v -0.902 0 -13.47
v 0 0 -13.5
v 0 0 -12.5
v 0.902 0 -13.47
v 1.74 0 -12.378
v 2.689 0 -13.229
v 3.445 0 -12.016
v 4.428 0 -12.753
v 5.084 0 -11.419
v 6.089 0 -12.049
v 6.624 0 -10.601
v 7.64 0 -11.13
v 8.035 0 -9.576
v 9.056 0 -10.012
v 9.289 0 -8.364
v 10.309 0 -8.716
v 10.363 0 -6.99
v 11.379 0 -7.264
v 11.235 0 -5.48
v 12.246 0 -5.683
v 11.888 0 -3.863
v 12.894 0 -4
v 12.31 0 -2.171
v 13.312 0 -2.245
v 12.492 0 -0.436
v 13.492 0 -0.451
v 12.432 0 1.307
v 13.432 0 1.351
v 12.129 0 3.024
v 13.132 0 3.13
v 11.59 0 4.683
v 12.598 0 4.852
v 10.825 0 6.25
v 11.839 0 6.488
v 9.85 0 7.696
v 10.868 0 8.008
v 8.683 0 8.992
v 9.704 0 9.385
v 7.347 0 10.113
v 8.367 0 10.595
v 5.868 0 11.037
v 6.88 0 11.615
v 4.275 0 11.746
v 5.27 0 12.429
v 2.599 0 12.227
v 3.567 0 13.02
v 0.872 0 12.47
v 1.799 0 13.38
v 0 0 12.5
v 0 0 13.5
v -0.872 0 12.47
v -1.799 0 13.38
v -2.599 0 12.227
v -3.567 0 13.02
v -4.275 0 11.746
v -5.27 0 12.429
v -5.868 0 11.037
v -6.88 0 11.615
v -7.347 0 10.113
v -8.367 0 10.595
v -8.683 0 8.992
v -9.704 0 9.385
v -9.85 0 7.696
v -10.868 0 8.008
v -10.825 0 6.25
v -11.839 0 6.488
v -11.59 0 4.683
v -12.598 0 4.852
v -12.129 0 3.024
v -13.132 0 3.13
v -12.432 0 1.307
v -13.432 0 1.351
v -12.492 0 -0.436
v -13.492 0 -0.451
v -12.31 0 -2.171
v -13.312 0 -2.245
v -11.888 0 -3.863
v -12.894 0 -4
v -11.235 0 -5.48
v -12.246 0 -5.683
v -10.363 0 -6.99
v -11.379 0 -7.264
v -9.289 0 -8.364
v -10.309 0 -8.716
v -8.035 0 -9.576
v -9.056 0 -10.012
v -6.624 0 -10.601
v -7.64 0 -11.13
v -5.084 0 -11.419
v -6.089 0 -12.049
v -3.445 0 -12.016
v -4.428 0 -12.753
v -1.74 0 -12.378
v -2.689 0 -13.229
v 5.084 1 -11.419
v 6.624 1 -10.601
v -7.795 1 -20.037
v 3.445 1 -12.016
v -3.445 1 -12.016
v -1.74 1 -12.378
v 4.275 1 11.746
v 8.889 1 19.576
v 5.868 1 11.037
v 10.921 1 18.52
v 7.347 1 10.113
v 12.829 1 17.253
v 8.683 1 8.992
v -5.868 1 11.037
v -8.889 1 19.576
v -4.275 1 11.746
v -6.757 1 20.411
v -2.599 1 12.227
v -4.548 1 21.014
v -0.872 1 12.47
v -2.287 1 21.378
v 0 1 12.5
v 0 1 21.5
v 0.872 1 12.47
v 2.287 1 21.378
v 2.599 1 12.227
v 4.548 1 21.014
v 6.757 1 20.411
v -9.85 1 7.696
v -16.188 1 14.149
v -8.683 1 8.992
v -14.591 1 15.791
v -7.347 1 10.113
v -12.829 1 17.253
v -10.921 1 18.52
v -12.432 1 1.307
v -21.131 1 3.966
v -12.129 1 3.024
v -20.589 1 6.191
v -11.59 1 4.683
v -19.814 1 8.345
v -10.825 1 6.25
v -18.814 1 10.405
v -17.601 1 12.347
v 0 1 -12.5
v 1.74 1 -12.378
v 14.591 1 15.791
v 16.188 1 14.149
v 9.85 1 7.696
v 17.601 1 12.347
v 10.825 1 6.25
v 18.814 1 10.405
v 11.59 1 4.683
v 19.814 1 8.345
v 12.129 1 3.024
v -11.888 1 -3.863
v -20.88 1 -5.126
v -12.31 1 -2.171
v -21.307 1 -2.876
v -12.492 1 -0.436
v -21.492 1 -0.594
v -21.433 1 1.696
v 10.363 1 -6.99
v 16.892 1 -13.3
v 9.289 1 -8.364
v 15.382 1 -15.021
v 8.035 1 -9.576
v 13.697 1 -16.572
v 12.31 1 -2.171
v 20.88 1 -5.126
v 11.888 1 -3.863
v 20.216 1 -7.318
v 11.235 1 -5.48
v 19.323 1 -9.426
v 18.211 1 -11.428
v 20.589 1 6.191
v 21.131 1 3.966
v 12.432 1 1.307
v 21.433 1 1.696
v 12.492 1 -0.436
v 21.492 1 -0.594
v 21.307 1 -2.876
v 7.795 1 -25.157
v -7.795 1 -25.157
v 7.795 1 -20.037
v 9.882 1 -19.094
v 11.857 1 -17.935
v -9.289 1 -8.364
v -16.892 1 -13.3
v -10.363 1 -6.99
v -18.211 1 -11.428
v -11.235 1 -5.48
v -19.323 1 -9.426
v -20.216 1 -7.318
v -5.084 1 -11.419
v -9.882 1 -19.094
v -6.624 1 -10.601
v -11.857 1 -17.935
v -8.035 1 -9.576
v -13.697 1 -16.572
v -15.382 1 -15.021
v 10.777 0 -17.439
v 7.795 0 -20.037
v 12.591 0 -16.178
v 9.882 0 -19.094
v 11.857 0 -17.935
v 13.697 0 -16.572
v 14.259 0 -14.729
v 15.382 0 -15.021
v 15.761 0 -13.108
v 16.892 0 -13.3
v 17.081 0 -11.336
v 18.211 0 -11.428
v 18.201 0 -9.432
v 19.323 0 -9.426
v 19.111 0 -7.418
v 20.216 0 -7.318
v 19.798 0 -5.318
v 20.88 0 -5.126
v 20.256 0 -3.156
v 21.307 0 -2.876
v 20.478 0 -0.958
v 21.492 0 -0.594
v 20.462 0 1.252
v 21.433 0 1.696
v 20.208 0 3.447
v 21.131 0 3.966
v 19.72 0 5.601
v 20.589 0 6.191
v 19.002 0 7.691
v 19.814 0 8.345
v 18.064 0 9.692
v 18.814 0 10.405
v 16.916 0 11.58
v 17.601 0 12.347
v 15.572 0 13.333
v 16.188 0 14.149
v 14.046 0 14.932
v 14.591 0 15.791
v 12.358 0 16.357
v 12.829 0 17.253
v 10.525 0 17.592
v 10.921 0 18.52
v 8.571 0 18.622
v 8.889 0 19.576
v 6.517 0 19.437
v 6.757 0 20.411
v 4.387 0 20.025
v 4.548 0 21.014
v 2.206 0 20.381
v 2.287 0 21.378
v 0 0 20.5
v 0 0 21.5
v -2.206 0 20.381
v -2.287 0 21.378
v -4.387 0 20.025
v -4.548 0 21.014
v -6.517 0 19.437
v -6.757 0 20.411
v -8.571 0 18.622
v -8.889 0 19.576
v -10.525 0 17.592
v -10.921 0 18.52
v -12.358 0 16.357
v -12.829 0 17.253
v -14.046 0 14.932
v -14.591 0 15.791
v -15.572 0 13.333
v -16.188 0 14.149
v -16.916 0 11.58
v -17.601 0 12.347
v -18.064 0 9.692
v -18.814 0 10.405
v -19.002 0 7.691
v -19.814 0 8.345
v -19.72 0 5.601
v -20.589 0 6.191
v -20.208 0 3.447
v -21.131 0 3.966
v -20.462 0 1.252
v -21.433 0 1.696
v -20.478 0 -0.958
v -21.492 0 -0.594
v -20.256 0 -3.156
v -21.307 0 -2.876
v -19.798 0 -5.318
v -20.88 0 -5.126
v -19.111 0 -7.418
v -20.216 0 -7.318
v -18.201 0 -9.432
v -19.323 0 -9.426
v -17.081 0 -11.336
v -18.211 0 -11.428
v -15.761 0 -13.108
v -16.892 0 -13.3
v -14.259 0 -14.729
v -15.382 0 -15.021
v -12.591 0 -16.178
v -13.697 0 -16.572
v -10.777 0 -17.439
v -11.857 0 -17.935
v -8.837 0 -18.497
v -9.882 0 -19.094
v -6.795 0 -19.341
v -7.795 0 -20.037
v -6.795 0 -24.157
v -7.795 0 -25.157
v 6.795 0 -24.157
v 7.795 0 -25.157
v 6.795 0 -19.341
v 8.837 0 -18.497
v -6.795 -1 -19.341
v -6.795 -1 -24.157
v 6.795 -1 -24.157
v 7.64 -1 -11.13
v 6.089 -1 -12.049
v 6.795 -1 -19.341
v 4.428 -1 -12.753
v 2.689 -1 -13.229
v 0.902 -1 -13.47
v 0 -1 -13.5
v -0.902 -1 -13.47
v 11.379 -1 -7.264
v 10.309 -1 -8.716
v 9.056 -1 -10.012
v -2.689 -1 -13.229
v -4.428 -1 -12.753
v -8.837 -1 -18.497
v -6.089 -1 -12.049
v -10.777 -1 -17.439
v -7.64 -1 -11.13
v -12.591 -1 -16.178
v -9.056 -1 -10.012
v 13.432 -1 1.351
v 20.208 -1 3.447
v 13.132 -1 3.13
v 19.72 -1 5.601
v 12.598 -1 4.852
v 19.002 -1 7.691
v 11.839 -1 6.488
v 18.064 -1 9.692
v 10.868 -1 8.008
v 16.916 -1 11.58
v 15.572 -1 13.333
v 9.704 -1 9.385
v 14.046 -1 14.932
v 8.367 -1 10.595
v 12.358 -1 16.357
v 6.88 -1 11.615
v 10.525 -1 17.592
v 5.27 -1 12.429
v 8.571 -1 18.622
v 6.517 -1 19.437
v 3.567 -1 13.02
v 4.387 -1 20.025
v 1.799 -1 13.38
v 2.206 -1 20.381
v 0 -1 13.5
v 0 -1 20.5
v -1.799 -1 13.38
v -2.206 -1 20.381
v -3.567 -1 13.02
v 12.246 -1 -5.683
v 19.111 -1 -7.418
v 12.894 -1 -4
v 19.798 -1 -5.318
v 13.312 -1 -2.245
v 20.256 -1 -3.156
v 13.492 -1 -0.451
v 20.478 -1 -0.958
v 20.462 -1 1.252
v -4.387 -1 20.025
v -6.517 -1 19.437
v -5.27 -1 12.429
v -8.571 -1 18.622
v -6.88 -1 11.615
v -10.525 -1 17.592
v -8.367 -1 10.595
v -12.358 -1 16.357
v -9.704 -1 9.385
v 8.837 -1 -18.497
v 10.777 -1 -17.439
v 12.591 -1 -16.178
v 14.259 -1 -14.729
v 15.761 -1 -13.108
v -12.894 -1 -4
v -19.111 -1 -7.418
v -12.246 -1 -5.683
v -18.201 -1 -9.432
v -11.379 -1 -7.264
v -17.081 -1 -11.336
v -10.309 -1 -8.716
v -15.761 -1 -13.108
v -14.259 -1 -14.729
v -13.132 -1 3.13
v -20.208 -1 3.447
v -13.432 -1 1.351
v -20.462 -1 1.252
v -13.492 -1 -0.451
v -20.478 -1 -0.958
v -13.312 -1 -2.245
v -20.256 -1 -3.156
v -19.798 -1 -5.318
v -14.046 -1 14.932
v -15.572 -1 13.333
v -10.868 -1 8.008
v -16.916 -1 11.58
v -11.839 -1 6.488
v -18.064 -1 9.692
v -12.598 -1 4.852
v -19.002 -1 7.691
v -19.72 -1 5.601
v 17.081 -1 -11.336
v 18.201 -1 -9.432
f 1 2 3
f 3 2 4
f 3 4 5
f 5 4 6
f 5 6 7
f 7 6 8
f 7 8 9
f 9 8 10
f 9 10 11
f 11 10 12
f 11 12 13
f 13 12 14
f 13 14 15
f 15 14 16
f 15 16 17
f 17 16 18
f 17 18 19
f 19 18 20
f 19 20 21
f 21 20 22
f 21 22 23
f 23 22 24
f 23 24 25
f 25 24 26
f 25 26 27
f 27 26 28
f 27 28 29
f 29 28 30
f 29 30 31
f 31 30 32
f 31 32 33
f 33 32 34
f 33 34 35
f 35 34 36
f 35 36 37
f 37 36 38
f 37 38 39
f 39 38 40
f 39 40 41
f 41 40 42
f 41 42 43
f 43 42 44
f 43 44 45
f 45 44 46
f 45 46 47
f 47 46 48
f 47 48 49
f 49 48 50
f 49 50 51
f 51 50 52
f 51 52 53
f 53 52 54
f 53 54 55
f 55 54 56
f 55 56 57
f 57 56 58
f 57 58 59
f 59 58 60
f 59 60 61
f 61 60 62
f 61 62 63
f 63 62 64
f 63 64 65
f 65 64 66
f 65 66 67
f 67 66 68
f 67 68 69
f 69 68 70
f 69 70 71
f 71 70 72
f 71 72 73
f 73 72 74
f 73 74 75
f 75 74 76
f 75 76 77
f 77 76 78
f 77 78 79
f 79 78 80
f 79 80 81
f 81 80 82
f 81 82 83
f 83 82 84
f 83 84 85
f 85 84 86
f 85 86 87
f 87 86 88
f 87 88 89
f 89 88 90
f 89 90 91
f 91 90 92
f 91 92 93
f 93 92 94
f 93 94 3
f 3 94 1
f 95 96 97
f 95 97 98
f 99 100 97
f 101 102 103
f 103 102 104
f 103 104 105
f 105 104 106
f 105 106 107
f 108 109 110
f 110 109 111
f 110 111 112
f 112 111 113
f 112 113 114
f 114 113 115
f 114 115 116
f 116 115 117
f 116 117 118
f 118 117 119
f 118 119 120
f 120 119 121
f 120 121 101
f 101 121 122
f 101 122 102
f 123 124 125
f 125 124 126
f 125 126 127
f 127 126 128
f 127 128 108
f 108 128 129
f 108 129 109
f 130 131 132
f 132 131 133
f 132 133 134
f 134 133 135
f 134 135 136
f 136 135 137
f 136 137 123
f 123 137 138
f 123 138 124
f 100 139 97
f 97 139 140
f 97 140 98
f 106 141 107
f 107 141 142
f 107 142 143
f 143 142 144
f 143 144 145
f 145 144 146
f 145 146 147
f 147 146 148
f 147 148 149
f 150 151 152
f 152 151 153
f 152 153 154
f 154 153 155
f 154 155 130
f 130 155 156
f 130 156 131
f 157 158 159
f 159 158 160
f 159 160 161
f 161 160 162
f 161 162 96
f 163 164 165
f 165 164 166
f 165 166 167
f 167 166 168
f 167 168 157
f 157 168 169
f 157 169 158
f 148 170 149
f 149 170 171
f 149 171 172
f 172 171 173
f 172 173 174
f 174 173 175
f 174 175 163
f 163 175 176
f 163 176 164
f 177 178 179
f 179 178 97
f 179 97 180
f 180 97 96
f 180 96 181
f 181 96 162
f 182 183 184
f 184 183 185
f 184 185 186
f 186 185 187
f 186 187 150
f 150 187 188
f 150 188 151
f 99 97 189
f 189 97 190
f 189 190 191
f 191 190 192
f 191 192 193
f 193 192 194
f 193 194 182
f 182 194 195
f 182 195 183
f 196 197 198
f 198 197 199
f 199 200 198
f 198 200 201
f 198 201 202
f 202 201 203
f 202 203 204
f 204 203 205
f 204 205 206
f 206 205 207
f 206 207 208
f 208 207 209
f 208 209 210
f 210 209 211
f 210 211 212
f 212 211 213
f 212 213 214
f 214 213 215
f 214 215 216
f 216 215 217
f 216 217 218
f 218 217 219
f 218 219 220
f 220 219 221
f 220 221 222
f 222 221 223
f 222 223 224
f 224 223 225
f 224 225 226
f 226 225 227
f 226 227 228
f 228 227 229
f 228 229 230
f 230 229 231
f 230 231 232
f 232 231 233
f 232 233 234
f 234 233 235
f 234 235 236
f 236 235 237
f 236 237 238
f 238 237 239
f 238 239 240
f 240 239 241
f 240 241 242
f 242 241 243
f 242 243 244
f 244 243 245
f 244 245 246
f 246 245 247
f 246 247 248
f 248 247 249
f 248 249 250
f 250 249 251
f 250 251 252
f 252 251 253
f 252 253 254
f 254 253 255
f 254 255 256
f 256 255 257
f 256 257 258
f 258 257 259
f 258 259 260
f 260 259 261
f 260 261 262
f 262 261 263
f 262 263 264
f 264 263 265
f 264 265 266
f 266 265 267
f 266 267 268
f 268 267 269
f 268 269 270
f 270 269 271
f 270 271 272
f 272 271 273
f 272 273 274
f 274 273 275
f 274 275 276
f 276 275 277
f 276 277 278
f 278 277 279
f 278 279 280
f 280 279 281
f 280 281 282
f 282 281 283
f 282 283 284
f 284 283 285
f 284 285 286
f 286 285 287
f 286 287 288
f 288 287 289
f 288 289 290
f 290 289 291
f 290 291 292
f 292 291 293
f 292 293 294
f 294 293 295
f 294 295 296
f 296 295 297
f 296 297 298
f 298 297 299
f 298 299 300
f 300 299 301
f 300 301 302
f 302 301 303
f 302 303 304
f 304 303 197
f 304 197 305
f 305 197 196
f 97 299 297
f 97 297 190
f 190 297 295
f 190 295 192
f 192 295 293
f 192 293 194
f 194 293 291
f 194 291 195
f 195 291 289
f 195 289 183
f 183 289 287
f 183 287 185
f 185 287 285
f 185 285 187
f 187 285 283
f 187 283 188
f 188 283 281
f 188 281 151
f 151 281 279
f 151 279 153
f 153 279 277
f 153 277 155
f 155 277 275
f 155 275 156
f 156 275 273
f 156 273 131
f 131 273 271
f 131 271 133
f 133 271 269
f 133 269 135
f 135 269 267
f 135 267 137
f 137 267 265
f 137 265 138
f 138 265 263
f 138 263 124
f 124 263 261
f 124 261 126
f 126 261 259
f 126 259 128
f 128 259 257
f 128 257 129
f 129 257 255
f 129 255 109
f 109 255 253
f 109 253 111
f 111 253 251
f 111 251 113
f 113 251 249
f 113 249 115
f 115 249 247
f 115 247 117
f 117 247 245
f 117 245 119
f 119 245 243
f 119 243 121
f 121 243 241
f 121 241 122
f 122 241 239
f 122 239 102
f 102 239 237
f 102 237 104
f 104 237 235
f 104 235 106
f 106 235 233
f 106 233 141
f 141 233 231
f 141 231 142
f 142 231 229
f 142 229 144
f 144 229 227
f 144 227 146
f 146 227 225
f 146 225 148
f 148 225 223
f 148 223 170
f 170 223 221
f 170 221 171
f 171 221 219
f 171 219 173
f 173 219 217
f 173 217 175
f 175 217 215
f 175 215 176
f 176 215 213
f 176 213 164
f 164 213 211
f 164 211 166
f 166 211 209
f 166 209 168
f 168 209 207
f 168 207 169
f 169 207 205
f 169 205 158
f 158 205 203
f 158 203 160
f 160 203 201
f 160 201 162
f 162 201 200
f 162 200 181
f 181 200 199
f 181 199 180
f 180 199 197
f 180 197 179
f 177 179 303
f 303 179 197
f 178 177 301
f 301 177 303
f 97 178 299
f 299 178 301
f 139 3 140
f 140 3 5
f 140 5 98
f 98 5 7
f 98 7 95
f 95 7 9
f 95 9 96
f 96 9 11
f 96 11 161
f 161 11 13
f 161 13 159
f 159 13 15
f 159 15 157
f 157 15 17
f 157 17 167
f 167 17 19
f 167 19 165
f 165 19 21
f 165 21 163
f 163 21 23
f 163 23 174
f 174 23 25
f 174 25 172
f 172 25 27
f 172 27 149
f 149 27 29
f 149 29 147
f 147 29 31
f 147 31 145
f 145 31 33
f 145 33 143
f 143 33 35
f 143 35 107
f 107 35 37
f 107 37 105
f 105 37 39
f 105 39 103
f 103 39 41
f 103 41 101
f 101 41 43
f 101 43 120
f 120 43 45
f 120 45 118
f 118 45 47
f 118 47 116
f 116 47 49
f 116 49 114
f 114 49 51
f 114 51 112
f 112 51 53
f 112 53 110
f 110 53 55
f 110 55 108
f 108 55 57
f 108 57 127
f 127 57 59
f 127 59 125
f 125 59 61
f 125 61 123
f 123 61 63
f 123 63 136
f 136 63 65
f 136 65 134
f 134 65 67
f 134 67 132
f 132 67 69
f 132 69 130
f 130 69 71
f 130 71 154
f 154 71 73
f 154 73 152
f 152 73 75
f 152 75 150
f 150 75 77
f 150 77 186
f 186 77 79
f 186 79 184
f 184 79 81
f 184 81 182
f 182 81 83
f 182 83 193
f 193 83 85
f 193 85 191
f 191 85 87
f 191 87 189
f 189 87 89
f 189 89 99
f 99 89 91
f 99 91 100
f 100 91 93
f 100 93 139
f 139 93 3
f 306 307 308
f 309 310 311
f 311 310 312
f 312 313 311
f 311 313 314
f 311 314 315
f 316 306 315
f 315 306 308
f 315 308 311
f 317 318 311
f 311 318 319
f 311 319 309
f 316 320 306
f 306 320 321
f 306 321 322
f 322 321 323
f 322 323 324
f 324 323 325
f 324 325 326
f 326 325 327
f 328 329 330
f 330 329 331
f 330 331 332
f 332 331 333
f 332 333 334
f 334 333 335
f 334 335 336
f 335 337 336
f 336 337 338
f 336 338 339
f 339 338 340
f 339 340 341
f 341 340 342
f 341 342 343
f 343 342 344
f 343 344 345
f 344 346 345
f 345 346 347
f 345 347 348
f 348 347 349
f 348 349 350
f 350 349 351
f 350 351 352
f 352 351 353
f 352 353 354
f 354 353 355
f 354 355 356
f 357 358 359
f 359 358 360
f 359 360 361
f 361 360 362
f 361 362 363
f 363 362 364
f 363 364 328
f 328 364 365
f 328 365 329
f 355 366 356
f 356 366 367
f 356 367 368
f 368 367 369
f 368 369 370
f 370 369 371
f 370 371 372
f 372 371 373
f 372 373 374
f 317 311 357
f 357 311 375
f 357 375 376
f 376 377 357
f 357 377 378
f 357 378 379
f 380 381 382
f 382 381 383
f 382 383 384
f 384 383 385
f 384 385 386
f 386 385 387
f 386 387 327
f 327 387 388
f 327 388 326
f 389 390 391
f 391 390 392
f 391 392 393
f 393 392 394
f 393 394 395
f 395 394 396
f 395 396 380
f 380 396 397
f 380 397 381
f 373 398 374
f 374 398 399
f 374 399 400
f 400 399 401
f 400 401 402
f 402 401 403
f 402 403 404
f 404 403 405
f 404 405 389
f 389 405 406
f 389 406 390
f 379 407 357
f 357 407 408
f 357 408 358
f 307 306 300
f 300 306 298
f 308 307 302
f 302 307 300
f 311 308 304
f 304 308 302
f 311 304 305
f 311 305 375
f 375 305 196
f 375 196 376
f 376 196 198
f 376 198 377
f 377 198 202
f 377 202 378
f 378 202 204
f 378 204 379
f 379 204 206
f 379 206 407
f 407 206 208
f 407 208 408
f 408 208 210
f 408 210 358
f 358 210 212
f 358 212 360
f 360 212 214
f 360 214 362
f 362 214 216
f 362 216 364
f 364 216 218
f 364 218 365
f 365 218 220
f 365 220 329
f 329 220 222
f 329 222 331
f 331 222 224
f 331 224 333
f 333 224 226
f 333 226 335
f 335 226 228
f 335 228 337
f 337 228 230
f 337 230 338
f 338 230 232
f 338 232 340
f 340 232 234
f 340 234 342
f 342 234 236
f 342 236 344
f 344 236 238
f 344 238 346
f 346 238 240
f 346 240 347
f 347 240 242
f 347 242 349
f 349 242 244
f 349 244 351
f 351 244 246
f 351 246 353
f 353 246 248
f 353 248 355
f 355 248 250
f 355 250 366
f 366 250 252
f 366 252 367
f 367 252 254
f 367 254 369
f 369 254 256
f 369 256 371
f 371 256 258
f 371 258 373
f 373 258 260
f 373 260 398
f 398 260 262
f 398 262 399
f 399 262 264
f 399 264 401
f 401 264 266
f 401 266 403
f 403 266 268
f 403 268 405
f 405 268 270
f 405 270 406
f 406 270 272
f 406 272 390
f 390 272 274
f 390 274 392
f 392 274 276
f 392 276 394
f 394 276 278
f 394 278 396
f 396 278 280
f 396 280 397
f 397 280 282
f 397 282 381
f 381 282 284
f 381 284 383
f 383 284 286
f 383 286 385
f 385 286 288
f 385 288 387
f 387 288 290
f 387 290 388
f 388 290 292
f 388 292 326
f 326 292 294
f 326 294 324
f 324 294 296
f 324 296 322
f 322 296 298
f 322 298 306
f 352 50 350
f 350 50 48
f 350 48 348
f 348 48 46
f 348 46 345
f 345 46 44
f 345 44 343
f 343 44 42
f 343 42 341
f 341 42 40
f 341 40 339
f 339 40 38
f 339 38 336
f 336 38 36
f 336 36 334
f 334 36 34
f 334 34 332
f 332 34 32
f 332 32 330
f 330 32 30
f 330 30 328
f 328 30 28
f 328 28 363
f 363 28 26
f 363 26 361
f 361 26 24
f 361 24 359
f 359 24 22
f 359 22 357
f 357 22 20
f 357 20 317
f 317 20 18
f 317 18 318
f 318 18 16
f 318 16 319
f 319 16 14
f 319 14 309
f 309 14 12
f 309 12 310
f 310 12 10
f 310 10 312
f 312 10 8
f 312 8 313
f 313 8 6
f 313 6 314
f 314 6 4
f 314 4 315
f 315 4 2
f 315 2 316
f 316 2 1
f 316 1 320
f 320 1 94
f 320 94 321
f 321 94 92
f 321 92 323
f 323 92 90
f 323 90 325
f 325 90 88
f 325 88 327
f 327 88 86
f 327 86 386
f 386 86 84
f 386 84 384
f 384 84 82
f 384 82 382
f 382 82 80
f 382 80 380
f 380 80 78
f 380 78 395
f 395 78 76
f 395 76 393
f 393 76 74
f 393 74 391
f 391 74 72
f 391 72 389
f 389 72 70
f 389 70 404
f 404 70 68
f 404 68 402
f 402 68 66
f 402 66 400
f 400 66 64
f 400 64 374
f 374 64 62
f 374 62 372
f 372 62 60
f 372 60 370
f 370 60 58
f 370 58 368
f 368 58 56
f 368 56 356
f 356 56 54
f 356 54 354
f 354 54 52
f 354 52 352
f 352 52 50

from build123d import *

# Parameters (mm, degrees)
SKETCH1_R           = 12.5
BOSS_EXTRUDE1_DEPTH = 1
SKETCH2_R           = 13.5
BOSS_EXTRUDE2_DEPTH = 1


with BuildPart() as part:
    # Sketch1 → Boss-Extrude1 (new body)
    with BuildSketch(Plane(origin=(0, 0, 0), x_dir=(1, 0, 0), z_dir=(0, 1, 0))):
        with BuildLine():
            Line((-7.795, 20.037164844), (-7.795, 25.157164844))
            Line((-7.795, 25.157164844), (7.795, 25.157164844))
            Line((7.795, 25.157164844), (7.795, 20.037164844))
            ThreePointArc((7.795, 20.037164844), (0, -21.5), (-7.795, 20.037164844))
        make_face()
        Circle(SKETCH1_R, mode=Mode.SUBTRACT)
    extrude(amount=BOSS_EXTRUDE1_DEPTH)

    # Sketch2 → Boss-Extrude2 (add)
    with BuildSketch(Plane.XZ):
        with BuildLine():
            Line((-6.795, -24.157164844), (6.795, -24.157164844))
            Line((6.795, -24.157164844), (6.795, -19.341095496))
            ThreePointArc((6.795, -19.341095496), (0, 20.5), (-6.795, -19.341095496))
            Line((-6.795, -19.341095496), (-6.795, -24.157164844))
        make_face()
        Circle(SKETCH2_R, mode=Mode.SUBTRACT)
    extrude(amount=BOSS_EXTRUDE2_DEPTH)


solid = part.part
